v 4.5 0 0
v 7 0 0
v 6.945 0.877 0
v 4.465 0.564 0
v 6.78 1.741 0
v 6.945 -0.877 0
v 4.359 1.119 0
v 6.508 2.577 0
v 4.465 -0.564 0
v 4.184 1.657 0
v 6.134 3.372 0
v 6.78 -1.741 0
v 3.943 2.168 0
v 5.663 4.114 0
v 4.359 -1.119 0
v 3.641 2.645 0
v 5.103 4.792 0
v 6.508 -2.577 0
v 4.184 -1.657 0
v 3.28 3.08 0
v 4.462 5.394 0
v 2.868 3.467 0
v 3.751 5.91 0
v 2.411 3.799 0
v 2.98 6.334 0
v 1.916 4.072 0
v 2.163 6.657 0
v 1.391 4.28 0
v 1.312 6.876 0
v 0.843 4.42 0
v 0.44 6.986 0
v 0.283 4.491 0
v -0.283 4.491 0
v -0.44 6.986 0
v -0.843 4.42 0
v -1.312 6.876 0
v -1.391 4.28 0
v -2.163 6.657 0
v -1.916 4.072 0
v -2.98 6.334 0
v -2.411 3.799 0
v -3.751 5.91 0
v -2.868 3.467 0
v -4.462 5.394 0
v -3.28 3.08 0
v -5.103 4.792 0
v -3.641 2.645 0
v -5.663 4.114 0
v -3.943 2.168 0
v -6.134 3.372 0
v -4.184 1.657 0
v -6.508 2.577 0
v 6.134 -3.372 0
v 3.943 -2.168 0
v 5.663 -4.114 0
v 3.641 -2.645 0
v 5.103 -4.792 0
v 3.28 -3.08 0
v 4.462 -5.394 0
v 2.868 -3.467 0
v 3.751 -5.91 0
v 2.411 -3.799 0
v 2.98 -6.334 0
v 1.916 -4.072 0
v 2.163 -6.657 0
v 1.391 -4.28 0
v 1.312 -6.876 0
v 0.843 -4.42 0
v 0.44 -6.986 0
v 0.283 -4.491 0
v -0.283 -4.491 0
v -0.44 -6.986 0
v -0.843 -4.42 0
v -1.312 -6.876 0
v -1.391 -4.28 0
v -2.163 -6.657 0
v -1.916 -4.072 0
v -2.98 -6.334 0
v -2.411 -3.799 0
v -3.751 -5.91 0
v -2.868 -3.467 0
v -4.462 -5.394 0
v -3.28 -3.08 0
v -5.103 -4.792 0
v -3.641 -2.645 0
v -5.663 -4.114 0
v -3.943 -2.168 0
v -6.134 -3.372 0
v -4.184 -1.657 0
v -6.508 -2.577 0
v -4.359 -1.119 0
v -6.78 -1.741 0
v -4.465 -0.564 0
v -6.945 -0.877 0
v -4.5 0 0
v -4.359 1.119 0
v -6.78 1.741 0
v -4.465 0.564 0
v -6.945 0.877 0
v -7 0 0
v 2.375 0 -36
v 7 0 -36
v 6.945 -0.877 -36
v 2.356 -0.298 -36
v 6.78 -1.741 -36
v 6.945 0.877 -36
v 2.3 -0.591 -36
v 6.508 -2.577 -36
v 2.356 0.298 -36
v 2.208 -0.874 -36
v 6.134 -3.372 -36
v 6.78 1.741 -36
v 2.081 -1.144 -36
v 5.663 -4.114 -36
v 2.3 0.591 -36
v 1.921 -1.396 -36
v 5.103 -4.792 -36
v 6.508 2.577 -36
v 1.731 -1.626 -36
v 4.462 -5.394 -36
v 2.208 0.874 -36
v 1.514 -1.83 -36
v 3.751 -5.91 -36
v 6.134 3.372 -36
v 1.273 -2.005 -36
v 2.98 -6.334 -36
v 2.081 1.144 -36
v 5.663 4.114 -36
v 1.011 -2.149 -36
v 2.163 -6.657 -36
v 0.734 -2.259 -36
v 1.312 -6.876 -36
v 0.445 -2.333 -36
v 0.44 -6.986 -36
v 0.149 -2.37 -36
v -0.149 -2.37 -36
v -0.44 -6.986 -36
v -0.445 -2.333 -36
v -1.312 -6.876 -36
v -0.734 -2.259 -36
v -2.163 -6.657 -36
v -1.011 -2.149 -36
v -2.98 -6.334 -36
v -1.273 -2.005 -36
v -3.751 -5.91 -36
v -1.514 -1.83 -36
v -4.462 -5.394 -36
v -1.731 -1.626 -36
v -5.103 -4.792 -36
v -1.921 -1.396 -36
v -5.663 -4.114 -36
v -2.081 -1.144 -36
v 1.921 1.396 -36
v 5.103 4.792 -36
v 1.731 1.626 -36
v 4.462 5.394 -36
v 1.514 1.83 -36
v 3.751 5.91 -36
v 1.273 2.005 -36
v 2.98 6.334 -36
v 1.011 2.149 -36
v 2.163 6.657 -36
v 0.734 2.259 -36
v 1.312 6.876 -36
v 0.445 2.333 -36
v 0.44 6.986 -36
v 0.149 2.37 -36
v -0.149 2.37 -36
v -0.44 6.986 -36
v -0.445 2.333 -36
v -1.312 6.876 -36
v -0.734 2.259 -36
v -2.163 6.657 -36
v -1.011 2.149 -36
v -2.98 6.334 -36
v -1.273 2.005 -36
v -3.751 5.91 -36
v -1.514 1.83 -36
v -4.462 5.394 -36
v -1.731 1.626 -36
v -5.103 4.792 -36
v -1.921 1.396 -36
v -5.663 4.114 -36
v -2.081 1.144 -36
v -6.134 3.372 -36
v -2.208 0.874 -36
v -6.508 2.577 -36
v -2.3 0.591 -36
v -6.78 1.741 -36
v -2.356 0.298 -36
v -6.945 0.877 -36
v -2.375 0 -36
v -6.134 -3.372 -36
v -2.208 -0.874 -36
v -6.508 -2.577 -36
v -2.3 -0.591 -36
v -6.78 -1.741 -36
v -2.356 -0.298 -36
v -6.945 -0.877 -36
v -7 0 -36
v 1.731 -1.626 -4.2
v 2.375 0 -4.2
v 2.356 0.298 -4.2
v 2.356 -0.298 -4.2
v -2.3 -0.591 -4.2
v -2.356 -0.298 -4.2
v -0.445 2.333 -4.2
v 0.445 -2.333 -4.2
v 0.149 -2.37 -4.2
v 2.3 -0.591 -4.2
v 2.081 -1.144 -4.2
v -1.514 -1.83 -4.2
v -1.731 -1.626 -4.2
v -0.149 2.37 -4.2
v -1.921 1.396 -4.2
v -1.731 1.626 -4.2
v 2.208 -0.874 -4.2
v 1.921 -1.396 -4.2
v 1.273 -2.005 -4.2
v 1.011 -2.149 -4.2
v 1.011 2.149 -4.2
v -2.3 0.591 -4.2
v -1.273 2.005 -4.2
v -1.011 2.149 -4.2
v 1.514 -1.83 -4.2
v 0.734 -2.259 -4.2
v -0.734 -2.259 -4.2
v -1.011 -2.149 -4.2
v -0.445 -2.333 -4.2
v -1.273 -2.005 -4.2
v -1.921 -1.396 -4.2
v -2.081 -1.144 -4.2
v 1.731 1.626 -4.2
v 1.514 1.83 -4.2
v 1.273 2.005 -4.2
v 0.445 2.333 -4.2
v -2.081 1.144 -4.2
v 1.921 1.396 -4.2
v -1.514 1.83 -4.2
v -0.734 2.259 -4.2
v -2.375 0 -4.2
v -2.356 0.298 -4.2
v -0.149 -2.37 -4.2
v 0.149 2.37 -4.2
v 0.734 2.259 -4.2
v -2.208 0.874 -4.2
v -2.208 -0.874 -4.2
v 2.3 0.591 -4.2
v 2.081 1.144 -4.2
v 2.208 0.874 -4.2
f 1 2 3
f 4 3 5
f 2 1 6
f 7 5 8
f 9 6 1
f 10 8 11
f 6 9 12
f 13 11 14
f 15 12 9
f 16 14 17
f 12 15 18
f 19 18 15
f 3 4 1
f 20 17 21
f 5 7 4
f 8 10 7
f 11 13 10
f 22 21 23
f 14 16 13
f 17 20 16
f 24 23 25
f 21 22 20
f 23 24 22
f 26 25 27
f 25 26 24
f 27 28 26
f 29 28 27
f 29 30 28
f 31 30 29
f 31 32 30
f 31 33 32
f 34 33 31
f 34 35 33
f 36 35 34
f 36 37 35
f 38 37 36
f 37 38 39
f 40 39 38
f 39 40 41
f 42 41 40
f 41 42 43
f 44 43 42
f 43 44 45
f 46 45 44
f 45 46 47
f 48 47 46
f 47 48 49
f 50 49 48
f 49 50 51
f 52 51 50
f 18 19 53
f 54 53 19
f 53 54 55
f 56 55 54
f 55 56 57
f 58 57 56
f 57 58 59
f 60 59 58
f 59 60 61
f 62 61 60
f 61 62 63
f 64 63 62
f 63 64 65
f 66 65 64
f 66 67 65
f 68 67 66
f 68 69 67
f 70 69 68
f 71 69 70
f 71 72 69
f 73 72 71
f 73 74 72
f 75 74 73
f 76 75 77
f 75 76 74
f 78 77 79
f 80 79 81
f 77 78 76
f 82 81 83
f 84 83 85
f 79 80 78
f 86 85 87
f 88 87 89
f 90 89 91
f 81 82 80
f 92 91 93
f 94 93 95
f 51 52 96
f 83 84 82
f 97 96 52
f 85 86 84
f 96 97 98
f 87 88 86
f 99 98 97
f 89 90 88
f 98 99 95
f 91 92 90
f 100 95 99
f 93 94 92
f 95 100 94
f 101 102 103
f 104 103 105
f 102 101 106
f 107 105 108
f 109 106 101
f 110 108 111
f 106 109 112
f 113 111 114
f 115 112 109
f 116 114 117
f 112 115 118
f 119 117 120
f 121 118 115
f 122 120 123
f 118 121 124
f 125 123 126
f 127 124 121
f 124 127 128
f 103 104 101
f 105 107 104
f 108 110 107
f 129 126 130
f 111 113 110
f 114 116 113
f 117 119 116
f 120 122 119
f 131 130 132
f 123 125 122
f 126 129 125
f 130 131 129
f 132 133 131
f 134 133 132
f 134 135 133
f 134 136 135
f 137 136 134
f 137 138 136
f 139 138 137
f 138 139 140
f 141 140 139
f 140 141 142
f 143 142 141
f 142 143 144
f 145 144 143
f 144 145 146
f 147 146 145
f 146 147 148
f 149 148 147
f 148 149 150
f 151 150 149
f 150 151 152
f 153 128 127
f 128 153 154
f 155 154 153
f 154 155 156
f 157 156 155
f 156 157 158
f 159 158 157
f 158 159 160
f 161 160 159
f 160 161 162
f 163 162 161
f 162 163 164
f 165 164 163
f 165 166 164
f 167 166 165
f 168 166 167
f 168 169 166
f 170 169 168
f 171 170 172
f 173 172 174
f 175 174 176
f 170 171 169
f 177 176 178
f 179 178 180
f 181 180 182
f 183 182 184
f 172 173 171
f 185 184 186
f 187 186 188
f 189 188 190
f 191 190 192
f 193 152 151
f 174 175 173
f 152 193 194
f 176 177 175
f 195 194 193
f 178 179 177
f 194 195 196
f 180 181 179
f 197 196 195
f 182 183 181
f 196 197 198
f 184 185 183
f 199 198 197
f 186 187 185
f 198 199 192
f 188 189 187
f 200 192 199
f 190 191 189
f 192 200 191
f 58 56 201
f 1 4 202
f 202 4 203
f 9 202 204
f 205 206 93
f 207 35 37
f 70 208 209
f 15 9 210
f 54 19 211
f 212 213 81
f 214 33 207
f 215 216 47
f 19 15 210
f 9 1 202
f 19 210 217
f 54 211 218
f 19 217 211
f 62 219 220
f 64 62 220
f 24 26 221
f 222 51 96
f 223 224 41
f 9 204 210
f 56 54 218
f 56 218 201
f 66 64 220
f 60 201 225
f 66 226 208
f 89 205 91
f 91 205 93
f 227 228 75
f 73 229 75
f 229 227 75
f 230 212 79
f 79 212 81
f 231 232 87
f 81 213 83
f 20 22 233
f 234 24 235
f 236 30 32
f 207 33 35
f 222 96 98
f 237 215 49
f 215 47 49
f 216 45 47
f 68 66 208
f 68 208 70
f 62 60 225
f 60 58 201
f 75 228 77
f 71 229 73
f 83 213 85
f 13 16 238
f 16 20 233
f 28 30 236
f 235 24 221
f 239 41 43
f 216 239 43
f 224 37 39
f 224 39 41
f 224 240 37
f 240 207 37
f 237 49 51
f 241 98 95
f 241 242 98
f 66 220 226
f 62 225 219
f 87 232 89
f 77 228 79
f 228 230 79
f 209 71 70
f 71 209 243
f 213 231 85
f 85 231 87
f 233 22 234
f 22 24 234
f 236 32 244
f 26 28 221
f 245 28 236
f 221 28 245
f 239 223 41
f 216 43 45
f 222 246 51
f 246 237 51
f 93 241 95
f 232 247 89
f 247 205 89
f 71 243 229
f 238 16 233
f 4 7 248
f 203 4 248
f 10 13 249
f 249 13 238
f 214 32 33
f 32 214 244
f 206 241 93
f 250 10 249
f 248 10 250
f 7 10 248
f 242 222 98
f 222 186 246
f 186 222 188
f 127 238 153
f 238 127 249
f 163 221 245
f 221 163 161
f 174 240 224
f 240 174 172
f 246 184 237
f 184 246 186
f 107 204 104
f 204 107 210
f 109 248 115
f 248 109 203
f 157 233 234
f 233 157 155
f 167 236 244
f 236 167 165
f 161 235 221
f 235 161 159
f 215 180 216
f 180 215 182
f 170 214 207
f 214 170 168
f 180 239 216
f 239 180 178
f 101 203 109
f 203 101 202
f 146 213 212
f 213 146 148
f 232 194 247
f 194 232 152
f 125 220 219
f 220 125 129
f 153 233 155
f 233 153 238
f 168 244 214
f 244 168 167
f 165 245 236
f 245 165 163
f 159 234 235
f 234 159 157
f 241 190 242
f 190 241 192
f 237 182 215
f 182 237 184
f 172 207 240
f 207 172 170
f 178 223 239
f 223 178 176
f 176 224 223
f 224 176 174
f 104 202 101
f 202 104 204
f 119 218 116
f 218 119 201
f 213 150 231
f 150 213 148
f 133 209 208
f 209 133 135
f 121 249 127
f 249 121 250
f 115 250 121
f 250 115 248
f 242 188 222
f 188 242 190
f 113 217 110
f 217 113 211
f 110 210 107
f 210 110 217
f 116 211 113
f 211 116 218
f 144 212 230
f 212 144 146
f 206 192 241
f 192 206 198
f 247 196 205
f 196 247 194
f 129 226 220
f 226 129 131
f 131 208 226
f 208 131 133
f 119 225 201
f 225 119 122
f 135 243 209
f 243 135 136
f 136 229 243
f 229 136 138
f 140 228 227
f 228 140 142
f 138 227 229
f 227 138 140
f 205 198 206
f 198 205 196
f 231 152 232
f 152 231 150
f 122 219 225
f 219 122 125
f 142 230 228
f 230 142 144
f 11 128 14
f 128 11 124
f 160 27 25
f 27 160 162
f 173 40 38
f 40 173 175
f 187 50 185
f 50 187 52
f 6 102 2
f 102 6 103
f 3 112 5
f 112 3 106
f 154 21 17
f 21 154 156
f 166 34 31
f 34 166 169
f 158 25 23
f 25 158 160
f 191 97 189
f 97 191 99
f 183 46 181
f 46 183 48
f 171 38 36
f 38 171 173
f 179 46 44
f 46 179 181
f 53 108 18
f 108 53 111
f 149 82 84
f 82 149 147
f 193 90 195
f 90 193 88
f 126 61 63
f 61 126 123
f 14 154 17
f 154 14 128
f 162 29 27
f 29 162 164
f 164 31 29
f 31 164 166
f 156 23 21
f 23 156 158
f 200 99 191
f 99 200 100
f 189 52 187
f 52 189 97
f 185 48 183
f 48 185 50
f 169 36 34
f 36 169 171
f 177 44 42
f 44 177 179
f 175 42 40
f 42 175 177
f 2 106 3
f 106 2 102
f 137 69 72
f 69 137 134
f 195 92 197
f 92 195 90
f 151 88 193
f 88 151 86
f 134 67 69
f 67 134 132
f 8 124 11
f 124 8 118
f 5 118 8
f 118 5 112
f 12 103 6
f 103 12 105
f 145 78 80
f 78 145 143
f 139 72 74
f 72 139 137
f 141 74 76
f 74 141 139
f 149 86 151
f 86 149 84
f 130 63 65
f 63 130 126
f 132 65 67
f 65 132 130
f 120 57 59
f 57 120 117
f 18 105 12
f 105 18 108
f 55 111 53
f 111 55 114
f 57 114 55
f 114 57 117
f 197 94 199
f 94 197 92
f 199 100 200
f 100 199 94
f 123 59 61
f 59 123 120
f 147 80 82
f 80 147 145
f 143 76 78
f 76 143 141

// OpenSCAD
$fn = 50;


difference() {
	union() {
		translate(v = [0, 0, -36.0000000000]) {
			cylinder(h = 36, r = 7.0000000000);
		}
		cylinder(h = 0, r = 16.0000000000);
	}
	union() {
		translate(v = [0, 0, 0]) {
			rotate(a = [0, 0, 0]) {
				difference() {
					union() {
						#translate(v = [0, 0, -36.0000000000]) {
							cylinder(h = 36, r = 2.2500000000);
						}
						#translate(v = [0, 0, -4.2000000000]) {
							cylinder(h = 4.2000000000, r = 7.0000000000, r1 = 2.3750000000, r2 = 4.5000000000);
						}
						#translate(v = [0, 0, -36.0000000000]) {
							cylinder(h = 36, r = 2.3750000000);
						}
						#translate(v = [0, 0, -36.0000000000]) {
							cylinder(h = 36, r = 2.2500000000);
						}
					}
					union();
				}
			}
		}
	}
}
